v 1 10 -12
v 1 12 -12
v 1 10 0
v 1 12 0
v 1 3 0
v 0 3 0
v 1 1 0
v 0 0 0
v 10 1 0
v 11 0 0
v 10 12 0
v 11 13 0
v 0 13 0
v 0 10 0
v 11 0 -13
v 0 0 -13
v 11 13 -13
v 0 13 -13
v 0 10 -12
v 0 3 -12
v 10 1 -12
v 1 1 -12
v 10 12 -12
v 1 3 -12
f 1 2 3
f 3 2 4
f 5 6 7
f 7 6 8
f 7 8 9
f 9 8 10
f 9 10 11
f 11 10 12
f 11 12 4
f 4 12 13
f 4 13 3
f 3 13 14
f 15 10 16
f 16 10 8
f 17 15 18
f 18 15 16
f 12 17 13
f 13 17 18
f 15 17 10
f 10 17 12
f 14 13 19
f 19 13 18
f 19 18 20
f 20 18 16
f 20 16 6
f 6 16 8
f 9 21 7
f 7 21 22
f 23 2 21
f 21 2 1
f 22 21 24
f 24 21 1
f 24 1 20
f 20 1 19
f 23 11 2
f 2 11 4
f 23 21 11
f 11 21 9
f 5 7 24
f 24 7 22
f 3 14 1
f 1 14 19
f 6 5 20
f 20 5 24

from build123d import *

# Parameters (mm, degrees)
SKIZZE1_W                       = 13
SKIZZE1_H                       = 13
AUFSATZ_LINEAR_AUSTRAGEN1_DEPTH = 11
WANDUNG1_T                      = -1
SKIZZE2_W                       = 1
SKIZZE2_H                       = 7
SCHNITT_LINEAR_AUSTRAGEN1_DEPTH = 12


with BuildPart() as part:
    # Skizze1 → Aufsatz-Linear austragen1 (new body)
    with BuildSketch(Plane(origin=(0, 0, 0), x_dir=(0, 0, -1), z_dir=(1, 0, 0))):
        with Locations((6.5, 6.5)):
            Rectangle(SKIZZE1_W, SKIZZE1_H)
    extrude(amount=AUFSATZ_LINEAR_AUSTRAGEN1_DEPTH)

    # Wandung1
    wandung1_openings = [part.faces().sort_by_distance(p)[0] for p in [
        (5.5, 6.5, 0),
    ]]
    offset(amount=WANDUNG1_T, openings=wandung1_openings, kind=Kind.INTERSECTION)

    # Skizze2 → Schnitt-Linear austragen1 (cut)
    with BuildSketch(Plane.XY):
        with Locations((0.5, 6.5)):
            Rectangle(SKIZZE2_W, SKIZZE2_H)
    extrude(amount=-SCHNITT_LINEAR_AUSTRAGEN1_DEPTH, mode=Mode.SUBTRACT)


solid = part.part
